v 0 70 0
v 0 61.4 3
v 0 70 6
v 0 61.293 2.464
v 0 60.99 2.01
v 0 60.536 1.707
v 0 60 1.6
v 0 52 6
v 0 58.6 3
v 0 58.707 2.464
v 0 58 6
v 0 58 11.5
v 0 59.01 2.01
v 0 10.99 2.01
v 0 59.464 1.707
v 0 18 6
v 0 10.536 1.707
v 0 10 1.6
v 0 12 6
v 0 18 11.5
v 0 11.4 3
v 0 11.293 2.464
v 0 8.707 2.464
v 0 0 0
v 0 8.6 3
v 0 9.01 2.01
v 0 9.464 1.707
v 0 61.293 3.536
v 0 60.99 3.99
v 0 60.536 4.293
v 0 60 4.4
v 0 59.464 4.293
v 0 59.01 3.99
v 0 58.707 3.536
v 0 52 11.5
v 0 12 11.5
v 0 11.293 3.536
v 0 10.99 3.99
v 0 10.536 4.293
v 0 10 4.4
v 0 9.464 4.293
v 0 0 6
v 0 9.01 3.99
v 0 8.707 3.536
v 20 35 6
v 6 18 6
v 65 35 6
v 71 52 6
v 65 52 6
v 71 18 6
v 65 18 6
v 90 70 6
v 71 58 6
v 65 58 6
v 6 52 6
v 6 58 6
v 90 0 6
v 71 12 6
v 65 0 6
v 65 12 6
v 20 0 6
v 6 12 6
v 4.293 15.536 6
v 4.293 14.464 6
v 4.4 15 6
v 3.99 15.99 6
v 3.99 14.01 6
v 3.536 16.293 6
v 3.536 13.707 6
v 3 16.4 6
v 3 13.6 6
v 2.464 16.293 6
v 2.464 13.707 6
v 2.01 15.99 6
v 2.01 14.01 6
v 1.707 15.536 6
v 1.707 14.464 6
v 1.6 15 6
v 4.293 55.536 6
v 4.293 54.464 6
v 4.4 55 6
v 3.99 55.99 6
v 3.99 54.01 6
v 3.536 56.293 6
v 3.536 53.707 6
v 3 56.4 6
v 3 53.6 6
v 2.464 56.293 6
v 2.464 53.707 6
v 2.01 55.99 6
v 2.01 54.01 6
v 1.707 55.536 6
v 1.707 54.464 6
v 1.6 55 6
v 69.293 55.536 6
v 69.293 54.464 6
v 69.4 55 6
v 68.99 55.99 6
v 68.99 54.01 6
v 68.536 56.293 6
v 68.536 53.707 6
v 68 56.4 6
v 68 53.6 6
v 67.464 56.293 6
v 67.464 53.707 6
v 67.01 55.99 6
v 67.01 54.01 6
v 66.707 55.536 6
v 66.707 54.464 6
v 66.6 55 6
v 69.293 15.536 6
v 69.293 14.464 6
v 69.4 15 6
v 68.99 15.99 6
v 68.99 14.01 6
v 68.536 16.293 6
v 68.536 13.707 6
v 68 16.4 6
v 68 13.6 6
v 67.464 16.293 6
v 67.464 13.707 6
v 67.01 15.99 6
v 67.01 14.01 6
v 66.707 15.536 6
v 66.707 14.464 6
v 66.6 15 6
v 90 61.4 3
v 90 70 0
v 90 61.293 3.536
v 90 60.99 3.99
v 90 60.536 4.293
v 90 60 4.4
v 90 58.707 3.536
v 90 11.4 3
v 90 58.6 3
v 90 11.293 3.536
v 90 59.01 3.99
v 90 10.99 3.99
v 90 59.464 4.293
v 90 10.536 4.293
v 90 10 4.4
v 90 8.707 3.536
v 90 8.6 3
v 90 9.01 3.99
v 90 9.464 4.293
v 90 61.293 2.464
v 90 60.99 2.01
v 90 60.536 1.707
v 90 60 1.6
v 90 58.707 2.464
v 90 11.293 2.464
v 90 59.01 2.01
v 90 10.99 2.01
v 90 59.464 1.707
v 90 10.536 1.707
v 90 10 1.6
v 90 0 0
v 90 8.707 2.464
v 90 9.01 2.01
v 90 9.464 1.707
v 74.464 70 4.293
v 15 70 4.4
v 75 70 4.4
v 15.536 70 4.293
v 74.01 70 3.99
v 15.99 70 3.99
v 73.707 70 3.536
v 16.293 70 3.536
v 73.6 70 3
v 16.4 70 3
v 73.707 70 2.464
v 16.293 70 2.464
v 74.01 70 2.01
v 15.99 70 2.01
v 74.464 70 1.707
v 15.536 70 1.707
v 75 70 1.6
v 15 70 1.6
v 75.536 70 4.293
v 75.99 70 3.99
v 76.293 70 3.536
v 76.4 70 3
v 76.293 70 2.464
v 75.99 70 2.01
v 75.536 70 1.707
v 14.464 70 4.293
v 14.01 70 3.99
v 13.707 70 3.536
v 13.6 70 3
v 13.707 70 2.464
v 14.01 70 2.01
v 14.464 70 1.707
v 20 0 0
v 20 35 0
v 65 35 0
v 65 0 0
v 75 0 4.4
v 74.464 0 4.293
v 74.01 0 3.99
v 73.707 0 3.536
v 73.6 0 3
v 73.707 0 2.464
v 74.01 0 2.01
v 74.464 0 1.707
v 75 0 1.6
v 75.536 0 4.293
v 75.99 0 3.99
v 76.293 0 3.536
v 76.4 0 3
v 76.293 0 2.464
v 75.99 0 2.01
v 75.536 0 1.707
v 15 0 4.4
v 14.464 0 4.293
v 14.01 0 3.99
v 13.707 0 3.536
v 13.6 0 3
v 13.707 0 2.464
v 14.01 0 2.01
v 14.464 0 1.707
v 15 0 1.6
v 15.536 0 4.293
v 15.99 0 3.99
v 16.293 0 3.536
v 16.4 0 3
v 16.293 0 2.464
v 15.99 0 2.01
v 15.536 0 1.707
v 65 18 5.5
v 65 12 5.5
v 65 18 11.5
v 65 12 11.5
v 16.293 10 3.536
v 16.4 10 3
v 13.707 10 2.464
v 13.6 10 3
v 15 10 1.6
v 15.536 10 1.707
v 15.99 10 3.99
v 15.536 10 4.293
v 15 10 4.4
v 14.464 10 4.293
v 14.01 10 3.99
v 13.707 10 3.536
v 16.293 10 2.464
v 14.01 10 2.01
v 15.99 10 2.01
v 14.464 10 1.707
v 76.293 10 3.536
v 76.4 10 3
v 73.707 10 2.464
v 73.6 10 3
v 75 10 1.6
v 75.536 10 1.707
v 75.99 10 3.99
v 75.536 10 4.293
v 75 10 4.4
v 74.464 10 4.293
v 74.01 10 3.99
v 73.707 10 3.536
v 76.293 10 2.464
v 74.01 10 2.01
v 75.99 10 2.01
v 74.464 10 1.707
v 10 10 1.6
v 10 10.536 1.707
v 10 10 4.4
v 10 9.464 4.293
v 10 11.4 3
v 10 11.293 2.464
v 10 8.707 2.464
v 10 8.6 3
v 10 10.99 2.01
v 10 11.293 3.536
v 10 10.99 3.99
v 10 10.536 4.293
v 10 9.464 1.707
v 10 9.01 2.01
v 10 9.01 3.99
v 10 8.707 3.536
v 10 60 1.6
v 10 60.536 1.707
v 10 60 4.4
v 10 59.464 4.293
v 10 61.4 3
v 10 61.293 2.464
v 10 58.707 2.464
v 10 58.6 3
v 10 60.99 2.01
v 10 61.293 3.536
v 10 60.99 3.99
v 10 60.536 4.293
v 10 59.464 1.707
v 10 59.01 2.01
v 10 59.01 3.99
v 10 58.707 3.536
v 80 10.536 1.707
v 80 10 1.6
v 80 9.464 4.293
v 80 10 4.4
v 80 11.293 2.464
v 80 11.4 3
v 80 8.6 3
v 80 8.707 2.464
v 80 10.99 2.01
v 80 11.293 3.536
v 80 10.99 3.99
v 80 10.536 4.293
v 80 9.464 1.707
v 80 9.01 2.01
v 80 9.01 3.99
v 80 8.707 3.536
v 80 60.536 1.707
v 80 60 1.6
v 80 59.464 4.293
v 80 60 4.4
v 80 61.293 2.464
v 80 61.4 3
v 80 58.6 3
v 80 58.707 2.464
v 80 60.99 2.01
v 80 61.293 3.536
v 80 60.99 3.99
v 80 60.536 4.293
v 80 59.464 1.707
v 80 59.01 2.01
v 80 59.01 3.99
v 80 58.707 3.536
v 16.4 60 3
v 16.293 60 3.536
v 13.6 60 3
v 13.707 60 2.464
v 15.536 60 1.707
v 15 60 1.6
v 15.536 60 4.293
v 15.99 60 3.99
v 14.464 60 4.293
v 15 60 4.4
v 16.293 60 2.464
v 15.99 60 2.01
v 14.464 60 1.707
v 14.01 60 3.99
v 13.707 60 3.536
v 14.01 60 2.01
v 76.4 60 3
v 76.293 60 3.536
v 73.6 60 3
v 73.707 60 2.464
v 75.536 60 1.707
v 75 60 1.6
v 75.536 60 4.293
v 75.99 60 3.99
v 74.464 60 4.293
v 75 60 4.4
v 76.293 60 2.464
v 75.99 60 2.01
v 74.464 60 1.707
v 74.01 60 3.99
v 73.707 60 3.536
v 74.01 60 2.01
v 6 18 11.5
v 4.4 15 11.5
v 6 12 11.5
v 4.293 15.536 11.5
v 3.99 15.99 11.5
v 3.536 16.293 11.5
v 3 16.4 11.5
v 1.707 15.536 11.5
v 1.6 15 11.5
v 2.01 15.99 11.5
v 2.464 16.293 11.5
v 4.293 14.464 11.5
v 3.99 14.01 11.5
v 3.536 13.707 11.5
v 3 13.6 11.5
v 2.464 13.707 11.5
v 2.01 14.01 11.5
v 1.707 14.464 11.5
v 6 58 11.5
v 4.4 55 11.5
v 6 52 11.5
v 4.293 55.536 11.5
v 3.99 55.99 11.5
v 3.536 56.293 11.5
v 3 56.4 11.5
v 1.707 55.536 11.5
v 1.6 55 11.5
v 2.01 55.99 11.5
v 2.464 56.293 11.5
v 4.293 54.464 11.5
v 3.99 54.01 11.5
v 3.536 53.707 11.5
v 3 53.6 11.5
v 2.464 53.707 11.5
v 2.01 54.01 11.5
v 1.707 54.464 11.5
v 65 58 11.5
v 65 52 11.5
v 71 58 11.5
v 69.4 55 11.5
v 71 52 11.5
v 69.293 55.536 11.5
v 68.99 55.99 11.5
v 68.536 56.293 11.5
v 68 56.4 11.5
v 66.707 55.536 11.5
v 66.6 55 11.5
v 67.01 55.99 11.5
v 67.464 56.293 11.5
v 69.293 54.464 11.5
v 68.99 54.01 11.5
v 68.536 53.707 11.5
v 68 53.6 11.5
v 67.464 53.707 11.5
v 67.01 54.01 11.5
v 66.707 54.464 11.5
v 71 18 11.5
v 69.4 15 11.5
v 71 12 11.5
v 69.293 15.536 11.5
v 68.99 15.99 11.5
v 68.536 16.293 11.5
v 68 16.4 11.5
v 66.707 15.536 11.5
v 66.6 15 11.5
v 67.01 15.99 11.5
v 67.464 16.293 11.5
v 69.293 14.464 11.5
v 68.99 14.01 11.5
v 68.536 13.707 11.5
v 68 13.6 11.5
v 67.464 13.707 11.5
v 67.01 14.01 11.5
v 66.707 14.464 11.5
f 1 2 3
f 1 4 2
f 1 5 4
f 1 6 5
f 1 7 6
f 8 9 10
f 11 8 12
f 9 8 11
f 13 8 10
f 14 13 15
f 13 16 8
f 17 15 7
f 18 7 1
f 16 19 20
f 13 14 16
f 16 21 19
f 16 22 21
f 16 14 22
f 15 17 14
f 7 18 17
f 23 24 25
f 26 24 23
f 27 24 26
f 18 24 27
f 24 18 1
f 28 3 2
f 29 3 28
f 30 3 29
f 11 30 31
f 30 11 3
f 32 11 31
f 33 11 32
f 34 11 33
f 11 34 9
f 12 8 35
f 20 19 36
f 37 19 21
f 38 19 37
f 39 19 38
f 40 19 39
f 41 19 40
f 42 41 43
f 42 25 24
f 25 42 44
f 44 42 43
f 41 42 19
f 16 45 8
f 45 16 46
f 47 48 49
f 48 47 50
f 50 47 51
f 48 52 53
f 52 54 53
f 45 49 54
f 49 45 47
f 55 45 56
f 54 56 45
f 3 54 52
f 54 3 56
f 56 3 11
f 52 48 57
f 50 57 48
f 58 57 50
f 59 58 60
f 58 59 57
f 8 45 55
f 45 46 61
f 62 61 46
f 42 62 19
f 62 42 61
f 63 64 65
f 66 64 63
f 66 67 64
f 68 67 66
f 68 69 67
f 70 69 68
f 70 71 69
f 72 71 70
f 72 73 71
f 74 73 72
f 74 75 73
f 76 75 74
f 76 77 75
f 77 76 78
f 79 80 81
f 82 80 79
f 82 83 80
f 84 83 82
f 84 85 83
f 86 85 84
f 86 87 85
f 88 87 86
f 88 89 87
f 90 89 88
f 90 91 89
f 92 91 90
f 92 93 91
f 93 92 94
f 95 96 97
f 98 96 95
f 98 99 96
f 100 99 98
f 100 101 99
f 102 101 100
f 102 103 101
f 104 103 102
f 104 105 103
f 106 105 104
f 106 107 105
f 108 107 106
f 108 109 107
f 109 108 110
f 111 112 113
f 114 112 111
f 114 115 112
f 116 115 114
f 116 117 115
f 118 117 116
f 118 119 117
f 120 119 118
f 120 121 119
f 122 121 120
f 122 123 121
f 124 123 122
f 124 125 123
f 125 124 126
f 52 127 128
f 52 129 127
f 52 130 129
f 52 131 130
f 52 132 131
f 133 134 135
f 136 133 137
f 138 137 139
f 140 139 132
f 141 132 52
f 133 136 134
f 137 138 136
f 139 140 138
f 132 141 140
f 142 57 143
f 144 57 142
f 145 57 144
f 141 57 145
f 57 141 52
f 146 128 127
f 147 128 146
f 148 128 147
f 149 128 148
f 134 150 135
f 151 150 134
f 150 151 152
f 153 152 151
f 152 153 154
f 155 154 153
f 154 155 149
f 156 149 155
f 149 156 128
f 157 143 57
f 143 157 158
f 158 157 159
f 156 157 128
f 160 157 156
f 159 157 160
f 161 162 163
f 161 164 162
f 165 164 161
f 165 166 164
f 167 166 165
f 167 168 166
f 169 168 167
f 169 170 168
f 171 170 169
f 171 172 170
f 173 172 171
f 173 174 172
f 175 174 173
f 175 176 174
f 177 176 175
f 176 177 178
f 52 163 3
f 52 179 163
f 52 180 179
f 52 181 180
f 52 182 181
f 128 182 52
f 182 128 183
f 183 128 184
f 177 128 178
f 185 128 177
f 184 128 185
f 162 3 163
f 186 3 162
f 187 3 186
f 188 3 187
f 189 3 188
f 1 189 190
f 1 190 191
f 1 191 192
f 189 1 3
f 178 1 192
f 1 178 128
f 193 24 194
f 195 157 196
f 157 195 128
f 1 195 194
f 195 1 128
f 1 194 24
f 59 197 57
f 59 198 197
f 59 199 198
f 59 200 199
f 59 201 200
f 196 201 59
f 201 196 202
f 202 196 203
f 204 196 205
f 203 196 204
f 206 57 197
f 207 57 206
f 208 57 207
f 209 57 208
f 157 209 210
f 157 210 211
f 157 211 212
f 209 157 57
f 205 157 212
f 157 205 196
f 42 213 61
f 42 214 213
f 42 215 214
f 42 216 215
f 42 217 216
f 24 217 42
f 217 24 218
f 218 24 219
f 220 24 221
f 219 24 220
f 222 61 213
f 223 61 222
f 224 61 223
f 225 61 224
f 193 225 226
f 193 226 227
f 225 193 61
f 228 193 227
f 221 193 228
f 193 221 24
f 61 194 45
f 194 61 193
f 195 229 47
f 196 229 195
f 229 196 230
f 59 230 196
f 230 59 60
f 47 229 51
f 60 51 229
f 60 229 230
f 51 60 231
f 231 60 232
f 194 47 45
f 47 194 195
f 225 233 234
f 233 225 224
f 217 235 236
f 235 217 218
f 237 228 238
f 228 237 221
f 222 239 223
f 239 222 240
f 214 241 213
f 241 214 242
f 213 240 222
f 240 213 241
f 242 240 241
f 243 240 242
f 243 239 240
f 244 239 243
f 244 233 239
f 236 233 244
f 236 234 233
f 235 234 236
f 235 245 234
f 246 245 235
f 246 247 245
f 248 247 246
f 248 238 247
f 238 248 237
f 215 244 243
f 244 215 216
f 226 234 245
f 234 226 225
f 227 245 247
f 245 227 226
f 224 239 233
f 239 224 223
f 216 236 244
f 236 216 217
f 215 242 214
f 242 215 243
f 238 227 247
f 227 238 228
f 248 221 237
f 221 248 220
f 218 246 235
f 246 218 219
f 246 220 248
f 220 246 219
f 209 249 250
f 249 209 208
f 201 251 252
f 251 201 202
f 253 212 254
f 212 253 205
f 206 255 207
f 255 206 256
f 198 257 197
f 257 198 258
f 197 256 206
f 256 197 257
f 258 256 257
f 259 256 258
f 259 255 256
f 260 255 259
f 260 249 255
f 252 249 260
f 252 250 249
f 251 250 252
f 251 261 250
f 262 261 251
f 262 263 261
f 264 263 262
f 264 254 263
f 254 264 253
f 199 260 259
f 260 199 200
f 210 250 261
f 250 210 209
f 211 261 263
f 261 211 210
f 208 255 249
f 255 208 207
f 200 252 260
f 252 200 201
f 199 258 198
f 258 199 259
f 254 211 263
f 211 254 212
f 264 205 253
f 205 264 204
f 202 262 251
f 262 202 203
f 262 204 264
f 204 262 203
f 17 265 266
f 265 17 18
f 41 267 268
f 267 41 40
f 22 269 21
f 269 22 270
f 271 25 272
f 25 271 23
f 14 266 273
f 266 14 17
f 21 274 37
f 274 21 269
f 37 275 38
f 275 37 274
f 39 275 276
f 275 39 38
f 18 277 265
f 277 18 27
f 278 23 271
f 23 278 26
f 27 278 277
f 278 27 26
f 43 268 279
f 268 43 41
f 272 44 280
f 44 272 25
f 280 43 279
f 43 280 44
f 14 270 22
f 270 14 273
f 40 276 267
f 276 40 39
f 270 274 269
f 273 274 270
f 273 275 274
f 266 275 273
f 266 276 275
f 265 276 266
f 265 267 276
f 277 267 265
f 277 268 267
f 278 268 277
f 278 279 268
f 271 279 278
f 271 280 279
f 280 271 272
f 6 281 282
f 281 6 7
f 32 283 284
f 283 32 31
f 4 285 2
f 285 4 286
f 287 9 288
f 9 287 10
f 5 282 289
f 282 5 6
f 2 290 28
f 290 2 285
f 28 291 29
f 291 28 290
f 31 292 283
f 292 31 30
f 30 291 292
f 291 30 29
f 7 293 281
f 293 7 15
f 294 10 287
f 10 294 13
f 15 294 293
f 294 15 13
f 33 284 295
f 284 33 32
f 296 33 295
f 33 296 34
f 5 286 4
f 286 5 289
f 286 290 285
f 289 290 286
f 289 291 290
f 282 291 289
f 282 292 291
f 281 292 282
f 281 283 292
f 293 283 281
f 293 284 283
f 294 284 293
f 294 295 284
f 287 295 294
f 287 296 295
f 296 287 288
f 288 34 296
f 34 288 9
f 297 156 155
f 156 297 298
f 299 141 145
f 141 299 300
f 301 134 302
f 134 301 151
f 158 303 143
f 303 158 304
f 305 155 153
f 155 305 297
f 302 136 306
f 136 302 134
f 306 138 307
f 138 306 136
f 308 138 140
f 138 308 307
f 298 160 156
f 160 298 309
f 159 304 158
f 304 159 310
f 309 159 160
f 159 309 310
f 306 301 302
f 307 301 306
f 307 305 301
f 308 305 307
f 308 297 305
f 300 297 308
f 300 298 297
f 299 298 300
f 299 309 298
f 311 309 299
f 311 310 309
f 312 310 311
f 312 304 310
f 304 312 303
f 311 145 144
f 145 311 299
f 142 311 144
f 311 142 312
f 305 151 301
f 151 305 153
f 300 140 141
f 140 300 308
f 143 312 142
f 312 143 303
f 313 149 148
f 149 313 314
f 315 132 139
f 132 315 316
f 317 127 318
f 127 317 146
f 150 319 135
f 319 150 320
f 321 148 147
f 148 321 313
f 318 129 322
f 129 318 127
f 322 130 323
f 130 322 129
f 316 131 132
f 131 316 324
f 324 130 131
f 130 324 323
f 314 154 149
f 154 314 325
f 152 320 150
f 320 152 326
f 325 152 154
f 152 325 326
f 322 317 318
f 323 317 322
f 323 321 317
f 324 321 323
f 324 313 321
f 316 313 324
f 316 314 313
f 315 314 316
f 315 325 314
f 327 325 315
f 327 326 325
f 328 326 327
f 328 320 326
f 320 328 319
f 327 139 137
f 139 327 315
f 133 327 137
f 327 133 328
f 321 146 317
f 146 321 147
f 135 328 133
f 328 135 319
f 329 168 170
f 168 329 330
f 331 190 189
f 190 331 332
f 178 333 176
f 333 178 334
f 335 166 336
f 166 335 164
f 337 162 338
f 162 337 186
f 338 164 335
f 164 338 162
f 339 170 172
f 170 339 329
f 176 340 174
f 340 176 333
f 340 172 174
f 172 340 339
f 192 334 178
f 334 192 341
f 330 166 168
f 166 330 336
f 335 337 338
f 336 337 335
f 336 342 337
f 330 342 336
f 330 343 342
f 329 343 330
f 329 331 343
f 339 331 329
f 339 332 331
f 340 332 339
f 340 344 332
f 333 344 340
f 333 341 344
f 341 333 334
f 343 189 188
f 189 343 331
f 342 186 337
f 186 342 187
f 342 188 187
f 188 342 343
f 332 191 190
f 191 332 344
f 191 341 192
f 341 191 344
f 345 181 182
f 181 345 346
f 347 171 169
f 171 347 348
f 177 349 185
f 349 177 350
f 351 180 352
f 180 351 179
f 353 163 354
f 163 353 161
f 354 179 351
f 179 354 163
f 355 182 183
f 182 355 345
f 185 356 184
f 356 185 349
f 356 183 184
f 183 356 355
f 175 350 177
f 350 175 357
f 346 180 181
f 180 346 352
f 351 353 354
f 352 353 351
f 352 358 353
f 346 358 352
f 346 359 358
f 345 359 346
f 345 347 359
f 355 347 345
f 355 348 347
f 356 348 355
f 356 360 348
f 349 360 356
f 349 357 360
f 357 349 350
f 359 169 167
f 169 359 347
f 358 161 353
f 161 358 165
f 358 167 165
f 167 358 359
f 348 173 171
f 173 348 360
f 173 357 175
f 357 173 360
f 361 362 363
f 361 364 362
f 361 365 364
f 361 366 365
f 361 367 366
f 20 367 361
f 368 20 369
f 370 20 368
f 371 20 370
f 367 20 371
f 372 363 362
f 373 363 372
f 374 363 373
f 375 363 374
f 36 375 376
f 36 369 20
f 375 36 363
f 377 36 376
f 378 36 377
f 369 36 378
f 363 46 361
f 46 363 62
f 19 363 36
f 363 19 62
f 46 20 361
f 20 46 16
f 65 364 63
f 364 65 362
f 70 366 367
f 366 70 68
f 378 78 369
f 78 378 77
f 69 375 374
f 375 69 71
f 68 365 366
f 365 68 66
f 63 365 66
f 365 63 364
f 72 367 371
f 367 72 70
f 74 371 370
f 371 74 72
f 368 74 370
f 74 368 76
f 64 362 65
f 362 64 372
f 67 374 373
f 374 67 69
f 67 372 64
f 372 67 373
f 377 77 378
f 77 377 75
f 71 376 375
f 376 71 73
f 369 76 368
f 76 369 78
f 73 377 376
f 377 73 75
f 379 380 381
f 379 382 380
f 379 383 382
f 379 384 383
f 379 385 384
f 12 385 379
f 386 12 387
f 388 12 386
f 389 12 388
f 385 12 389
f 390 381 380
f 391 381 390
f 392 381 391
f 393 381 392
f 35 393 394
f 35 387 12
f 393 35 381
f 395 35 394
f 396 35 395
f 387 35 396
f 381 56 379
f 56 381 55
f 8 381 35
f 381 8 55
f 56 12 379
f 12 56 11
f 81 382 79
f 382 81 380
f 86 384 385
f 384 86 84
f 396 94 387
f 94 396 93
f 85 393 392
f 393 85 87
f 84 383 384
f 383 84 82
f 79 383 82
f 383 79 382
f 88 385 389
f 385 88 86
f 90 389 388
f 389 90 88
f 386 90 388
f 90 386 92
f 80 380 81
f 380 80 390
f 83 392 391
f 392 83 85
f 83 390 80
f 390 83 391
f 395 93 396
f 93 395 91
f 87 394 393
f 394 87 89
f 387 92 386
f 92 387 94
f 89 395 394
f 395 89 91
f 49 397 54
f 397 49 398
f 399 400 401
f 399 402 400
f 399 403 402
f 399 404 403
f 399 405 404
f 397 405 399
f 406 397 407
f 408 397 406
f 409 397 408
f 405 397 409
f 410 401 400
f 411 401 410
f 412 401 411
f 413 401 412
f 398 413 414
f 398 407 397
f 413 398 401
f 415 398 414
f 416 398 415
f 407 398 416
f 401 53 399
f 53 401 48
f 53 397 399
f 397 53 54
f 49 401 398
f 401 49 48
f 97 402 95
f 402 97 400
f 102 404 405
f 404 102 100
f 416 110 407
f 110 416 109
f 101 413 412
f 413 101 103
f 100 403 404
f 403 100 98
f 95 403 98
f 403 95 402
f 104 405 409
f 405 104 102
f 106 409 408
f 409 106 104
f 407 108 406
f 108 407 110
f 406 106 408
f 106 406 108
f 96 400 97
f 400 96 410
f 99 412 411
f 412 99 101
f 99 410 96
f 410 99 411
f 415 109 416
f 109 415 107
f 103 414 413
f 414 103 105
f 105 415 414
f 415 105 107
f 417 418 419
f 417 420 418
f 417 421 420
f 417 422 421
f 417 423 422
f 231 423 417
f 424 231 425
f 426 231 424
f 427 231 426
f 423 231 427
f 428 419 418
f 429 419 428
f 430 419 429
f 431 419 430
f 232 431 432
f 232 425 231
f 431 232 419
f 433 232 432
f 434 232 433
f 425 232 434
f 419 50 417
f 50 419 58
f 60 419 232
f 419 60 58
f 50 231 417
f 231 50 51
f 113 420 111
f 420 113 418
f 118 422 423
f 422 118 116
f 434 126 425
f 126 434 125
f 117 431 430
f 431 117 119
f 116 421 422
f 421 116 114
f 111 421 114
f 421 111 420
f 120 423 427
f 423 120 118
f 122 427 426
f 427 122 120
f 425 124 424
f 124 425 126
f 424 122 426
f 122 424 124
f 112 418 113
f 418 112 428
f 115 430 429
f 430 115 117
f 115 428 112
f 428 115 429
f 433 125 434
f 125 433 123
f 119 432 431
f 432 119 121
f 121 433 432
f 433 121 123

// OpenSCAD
base_x_size = 90;
base_y_size = 70;
base_z_size = 6;

tap_hole_depth = 10;
tap_hole_r = 2.8/2; //M3.0 - 0.2

difference(){
	cube(size = [base_x_size, base_y_size, base_z_size], center = false);
	
	//切り欠き
	translate([20,0,0]) {
		cube(size = [45, 35, 8], center = false);
	}
	
	//backパネルねじ穴
	translate( [15 ,tap_hole_depth/2, base_z_size/2] ) rotate(a = [90, 0, 0] ){
		cylinder( h = tap_hole_depth, r = tap_hole_r, center = true , $fn=16 );
	}
	translate( [base_x_size - 15, tap_hole_depth/2, base_z_size/2] ) rotate(a = [90, 0, 0] ){
		cylinder( h = tap_hole_depth, r = tap_hole_r, center = true , $fn=16 );
	}

	//サイドパネルねじ穴
	translate( [tap_hole_depth/2, 10, base_z_size/2] ) rotate(a = [0, 90, 00] ){
		cylinder( h = tap_hole_depth, r = tap_hole_r, center = true , $fn=16 );
	}
	translate( [ tap_hole_depth/2, base_y_size - 10, base_z_size/2] ) rotate(a = [0, 90, 00] ){
		cylinder( h = tap_hole_depth, r = tap_hole_r, center = true , $fn=16 );
	}
	translate( [base_x_size - tap_hole_depth/2, 10, base_z_size/2] ) rotate(a = [0, 90, 00] ){
		cylinder( h = tap_hole_depth, r = tap_hole_r, center = true , $fn=16 );
	}
	translate( [base_x_size - tap_hole_depth/2, base_y_size - 10, base_z_size/2] ) rotate(a = [0, 90, 00] ){
		cylinder( h = tap_hole_depth, r = tap_hole_r, center = true , $fn=16 );
	}	

	//frontパネルねじ穴
	translate( [15 , base_y_size - tap_hole_depth/2, base_z_size/2] ) rotate(a = [90, 0, 0] ){
		cylinder( h = tap_hole_depth, r = tap_hole_r, center = true , $fn=16 );
	}
	translate( [base_x_size - 15, base_y_size - tap_hole_depth/2, base_z_size/2] ) rotate(a = [90, 0, 0] ){
		cylinder( h = tap_hole_depth, r = tap_hole_r, center = true , $fn=16 );
	}

}

pcb_mount_xy = 6;
pcb_mount_z = 5;

difference(){
	translate([pcb_mount_xy/2 , 15, base_z_size+pcb_mount_z/2]) {
		cube(size = [pcb_mount_xy, pcb_mount_xy, base_z_size], center = true);
	}
	translate([pcb_mount_xy/2 , 15, base_z_size+pcb_mount_z/2]) {
		cylinder( h = tap_hole_depth, r = tap_hole_r, center = true , $fn=16 );
	}
}

difference(){
	translate([pcb_mount_xy/2 , 15 + 40, base_z_size+pcb_mount_z/2]) {
		cube(size = [pcb_mount_xy, pcb_mount_xy, base_z_size], center = true);
	}
	translate([pcb_mount_xy/2 , 15 + 40, base_z_size+pcb_mount_z/2]) {
		cylinder( h = tap_hole_depth, r = tap_hole_r, center = true , $fn=16 );
	}
}

difference(){
	translate([pcb_mount_xy/2 + 65 , 15 + 40, base_z_size+pcb_mount_z/2]) {
		cube(size = [pcb_mount_xy, pcb_mount_xy, base_z_size], center = true);
	}
	translate([pcb_mount_xy/2 + 65 , 15 + 40, base_z_size+pcb_mount_z/2]) {
		cylinder( h = tap_hole_depth, r = tap_hole_r, center = true , $fn=16 );
	}
}

difference(){
	translate([pcb_mount_xy/2 + 65 , 15, base_z_size+pcb_mount_z/2]) {
		cube(size = [pcb_mount_xy, pcb_mount_xy, base_z_size], center = true);
	}
	translate([pcb_mount_xy/2 + 65 , 15, base_z_size+pcb_mount_z/2]) {
		cylinder( h = tap_hole_depth, r = tap_hole_r, center = true , $fn=16 );
	}
}
